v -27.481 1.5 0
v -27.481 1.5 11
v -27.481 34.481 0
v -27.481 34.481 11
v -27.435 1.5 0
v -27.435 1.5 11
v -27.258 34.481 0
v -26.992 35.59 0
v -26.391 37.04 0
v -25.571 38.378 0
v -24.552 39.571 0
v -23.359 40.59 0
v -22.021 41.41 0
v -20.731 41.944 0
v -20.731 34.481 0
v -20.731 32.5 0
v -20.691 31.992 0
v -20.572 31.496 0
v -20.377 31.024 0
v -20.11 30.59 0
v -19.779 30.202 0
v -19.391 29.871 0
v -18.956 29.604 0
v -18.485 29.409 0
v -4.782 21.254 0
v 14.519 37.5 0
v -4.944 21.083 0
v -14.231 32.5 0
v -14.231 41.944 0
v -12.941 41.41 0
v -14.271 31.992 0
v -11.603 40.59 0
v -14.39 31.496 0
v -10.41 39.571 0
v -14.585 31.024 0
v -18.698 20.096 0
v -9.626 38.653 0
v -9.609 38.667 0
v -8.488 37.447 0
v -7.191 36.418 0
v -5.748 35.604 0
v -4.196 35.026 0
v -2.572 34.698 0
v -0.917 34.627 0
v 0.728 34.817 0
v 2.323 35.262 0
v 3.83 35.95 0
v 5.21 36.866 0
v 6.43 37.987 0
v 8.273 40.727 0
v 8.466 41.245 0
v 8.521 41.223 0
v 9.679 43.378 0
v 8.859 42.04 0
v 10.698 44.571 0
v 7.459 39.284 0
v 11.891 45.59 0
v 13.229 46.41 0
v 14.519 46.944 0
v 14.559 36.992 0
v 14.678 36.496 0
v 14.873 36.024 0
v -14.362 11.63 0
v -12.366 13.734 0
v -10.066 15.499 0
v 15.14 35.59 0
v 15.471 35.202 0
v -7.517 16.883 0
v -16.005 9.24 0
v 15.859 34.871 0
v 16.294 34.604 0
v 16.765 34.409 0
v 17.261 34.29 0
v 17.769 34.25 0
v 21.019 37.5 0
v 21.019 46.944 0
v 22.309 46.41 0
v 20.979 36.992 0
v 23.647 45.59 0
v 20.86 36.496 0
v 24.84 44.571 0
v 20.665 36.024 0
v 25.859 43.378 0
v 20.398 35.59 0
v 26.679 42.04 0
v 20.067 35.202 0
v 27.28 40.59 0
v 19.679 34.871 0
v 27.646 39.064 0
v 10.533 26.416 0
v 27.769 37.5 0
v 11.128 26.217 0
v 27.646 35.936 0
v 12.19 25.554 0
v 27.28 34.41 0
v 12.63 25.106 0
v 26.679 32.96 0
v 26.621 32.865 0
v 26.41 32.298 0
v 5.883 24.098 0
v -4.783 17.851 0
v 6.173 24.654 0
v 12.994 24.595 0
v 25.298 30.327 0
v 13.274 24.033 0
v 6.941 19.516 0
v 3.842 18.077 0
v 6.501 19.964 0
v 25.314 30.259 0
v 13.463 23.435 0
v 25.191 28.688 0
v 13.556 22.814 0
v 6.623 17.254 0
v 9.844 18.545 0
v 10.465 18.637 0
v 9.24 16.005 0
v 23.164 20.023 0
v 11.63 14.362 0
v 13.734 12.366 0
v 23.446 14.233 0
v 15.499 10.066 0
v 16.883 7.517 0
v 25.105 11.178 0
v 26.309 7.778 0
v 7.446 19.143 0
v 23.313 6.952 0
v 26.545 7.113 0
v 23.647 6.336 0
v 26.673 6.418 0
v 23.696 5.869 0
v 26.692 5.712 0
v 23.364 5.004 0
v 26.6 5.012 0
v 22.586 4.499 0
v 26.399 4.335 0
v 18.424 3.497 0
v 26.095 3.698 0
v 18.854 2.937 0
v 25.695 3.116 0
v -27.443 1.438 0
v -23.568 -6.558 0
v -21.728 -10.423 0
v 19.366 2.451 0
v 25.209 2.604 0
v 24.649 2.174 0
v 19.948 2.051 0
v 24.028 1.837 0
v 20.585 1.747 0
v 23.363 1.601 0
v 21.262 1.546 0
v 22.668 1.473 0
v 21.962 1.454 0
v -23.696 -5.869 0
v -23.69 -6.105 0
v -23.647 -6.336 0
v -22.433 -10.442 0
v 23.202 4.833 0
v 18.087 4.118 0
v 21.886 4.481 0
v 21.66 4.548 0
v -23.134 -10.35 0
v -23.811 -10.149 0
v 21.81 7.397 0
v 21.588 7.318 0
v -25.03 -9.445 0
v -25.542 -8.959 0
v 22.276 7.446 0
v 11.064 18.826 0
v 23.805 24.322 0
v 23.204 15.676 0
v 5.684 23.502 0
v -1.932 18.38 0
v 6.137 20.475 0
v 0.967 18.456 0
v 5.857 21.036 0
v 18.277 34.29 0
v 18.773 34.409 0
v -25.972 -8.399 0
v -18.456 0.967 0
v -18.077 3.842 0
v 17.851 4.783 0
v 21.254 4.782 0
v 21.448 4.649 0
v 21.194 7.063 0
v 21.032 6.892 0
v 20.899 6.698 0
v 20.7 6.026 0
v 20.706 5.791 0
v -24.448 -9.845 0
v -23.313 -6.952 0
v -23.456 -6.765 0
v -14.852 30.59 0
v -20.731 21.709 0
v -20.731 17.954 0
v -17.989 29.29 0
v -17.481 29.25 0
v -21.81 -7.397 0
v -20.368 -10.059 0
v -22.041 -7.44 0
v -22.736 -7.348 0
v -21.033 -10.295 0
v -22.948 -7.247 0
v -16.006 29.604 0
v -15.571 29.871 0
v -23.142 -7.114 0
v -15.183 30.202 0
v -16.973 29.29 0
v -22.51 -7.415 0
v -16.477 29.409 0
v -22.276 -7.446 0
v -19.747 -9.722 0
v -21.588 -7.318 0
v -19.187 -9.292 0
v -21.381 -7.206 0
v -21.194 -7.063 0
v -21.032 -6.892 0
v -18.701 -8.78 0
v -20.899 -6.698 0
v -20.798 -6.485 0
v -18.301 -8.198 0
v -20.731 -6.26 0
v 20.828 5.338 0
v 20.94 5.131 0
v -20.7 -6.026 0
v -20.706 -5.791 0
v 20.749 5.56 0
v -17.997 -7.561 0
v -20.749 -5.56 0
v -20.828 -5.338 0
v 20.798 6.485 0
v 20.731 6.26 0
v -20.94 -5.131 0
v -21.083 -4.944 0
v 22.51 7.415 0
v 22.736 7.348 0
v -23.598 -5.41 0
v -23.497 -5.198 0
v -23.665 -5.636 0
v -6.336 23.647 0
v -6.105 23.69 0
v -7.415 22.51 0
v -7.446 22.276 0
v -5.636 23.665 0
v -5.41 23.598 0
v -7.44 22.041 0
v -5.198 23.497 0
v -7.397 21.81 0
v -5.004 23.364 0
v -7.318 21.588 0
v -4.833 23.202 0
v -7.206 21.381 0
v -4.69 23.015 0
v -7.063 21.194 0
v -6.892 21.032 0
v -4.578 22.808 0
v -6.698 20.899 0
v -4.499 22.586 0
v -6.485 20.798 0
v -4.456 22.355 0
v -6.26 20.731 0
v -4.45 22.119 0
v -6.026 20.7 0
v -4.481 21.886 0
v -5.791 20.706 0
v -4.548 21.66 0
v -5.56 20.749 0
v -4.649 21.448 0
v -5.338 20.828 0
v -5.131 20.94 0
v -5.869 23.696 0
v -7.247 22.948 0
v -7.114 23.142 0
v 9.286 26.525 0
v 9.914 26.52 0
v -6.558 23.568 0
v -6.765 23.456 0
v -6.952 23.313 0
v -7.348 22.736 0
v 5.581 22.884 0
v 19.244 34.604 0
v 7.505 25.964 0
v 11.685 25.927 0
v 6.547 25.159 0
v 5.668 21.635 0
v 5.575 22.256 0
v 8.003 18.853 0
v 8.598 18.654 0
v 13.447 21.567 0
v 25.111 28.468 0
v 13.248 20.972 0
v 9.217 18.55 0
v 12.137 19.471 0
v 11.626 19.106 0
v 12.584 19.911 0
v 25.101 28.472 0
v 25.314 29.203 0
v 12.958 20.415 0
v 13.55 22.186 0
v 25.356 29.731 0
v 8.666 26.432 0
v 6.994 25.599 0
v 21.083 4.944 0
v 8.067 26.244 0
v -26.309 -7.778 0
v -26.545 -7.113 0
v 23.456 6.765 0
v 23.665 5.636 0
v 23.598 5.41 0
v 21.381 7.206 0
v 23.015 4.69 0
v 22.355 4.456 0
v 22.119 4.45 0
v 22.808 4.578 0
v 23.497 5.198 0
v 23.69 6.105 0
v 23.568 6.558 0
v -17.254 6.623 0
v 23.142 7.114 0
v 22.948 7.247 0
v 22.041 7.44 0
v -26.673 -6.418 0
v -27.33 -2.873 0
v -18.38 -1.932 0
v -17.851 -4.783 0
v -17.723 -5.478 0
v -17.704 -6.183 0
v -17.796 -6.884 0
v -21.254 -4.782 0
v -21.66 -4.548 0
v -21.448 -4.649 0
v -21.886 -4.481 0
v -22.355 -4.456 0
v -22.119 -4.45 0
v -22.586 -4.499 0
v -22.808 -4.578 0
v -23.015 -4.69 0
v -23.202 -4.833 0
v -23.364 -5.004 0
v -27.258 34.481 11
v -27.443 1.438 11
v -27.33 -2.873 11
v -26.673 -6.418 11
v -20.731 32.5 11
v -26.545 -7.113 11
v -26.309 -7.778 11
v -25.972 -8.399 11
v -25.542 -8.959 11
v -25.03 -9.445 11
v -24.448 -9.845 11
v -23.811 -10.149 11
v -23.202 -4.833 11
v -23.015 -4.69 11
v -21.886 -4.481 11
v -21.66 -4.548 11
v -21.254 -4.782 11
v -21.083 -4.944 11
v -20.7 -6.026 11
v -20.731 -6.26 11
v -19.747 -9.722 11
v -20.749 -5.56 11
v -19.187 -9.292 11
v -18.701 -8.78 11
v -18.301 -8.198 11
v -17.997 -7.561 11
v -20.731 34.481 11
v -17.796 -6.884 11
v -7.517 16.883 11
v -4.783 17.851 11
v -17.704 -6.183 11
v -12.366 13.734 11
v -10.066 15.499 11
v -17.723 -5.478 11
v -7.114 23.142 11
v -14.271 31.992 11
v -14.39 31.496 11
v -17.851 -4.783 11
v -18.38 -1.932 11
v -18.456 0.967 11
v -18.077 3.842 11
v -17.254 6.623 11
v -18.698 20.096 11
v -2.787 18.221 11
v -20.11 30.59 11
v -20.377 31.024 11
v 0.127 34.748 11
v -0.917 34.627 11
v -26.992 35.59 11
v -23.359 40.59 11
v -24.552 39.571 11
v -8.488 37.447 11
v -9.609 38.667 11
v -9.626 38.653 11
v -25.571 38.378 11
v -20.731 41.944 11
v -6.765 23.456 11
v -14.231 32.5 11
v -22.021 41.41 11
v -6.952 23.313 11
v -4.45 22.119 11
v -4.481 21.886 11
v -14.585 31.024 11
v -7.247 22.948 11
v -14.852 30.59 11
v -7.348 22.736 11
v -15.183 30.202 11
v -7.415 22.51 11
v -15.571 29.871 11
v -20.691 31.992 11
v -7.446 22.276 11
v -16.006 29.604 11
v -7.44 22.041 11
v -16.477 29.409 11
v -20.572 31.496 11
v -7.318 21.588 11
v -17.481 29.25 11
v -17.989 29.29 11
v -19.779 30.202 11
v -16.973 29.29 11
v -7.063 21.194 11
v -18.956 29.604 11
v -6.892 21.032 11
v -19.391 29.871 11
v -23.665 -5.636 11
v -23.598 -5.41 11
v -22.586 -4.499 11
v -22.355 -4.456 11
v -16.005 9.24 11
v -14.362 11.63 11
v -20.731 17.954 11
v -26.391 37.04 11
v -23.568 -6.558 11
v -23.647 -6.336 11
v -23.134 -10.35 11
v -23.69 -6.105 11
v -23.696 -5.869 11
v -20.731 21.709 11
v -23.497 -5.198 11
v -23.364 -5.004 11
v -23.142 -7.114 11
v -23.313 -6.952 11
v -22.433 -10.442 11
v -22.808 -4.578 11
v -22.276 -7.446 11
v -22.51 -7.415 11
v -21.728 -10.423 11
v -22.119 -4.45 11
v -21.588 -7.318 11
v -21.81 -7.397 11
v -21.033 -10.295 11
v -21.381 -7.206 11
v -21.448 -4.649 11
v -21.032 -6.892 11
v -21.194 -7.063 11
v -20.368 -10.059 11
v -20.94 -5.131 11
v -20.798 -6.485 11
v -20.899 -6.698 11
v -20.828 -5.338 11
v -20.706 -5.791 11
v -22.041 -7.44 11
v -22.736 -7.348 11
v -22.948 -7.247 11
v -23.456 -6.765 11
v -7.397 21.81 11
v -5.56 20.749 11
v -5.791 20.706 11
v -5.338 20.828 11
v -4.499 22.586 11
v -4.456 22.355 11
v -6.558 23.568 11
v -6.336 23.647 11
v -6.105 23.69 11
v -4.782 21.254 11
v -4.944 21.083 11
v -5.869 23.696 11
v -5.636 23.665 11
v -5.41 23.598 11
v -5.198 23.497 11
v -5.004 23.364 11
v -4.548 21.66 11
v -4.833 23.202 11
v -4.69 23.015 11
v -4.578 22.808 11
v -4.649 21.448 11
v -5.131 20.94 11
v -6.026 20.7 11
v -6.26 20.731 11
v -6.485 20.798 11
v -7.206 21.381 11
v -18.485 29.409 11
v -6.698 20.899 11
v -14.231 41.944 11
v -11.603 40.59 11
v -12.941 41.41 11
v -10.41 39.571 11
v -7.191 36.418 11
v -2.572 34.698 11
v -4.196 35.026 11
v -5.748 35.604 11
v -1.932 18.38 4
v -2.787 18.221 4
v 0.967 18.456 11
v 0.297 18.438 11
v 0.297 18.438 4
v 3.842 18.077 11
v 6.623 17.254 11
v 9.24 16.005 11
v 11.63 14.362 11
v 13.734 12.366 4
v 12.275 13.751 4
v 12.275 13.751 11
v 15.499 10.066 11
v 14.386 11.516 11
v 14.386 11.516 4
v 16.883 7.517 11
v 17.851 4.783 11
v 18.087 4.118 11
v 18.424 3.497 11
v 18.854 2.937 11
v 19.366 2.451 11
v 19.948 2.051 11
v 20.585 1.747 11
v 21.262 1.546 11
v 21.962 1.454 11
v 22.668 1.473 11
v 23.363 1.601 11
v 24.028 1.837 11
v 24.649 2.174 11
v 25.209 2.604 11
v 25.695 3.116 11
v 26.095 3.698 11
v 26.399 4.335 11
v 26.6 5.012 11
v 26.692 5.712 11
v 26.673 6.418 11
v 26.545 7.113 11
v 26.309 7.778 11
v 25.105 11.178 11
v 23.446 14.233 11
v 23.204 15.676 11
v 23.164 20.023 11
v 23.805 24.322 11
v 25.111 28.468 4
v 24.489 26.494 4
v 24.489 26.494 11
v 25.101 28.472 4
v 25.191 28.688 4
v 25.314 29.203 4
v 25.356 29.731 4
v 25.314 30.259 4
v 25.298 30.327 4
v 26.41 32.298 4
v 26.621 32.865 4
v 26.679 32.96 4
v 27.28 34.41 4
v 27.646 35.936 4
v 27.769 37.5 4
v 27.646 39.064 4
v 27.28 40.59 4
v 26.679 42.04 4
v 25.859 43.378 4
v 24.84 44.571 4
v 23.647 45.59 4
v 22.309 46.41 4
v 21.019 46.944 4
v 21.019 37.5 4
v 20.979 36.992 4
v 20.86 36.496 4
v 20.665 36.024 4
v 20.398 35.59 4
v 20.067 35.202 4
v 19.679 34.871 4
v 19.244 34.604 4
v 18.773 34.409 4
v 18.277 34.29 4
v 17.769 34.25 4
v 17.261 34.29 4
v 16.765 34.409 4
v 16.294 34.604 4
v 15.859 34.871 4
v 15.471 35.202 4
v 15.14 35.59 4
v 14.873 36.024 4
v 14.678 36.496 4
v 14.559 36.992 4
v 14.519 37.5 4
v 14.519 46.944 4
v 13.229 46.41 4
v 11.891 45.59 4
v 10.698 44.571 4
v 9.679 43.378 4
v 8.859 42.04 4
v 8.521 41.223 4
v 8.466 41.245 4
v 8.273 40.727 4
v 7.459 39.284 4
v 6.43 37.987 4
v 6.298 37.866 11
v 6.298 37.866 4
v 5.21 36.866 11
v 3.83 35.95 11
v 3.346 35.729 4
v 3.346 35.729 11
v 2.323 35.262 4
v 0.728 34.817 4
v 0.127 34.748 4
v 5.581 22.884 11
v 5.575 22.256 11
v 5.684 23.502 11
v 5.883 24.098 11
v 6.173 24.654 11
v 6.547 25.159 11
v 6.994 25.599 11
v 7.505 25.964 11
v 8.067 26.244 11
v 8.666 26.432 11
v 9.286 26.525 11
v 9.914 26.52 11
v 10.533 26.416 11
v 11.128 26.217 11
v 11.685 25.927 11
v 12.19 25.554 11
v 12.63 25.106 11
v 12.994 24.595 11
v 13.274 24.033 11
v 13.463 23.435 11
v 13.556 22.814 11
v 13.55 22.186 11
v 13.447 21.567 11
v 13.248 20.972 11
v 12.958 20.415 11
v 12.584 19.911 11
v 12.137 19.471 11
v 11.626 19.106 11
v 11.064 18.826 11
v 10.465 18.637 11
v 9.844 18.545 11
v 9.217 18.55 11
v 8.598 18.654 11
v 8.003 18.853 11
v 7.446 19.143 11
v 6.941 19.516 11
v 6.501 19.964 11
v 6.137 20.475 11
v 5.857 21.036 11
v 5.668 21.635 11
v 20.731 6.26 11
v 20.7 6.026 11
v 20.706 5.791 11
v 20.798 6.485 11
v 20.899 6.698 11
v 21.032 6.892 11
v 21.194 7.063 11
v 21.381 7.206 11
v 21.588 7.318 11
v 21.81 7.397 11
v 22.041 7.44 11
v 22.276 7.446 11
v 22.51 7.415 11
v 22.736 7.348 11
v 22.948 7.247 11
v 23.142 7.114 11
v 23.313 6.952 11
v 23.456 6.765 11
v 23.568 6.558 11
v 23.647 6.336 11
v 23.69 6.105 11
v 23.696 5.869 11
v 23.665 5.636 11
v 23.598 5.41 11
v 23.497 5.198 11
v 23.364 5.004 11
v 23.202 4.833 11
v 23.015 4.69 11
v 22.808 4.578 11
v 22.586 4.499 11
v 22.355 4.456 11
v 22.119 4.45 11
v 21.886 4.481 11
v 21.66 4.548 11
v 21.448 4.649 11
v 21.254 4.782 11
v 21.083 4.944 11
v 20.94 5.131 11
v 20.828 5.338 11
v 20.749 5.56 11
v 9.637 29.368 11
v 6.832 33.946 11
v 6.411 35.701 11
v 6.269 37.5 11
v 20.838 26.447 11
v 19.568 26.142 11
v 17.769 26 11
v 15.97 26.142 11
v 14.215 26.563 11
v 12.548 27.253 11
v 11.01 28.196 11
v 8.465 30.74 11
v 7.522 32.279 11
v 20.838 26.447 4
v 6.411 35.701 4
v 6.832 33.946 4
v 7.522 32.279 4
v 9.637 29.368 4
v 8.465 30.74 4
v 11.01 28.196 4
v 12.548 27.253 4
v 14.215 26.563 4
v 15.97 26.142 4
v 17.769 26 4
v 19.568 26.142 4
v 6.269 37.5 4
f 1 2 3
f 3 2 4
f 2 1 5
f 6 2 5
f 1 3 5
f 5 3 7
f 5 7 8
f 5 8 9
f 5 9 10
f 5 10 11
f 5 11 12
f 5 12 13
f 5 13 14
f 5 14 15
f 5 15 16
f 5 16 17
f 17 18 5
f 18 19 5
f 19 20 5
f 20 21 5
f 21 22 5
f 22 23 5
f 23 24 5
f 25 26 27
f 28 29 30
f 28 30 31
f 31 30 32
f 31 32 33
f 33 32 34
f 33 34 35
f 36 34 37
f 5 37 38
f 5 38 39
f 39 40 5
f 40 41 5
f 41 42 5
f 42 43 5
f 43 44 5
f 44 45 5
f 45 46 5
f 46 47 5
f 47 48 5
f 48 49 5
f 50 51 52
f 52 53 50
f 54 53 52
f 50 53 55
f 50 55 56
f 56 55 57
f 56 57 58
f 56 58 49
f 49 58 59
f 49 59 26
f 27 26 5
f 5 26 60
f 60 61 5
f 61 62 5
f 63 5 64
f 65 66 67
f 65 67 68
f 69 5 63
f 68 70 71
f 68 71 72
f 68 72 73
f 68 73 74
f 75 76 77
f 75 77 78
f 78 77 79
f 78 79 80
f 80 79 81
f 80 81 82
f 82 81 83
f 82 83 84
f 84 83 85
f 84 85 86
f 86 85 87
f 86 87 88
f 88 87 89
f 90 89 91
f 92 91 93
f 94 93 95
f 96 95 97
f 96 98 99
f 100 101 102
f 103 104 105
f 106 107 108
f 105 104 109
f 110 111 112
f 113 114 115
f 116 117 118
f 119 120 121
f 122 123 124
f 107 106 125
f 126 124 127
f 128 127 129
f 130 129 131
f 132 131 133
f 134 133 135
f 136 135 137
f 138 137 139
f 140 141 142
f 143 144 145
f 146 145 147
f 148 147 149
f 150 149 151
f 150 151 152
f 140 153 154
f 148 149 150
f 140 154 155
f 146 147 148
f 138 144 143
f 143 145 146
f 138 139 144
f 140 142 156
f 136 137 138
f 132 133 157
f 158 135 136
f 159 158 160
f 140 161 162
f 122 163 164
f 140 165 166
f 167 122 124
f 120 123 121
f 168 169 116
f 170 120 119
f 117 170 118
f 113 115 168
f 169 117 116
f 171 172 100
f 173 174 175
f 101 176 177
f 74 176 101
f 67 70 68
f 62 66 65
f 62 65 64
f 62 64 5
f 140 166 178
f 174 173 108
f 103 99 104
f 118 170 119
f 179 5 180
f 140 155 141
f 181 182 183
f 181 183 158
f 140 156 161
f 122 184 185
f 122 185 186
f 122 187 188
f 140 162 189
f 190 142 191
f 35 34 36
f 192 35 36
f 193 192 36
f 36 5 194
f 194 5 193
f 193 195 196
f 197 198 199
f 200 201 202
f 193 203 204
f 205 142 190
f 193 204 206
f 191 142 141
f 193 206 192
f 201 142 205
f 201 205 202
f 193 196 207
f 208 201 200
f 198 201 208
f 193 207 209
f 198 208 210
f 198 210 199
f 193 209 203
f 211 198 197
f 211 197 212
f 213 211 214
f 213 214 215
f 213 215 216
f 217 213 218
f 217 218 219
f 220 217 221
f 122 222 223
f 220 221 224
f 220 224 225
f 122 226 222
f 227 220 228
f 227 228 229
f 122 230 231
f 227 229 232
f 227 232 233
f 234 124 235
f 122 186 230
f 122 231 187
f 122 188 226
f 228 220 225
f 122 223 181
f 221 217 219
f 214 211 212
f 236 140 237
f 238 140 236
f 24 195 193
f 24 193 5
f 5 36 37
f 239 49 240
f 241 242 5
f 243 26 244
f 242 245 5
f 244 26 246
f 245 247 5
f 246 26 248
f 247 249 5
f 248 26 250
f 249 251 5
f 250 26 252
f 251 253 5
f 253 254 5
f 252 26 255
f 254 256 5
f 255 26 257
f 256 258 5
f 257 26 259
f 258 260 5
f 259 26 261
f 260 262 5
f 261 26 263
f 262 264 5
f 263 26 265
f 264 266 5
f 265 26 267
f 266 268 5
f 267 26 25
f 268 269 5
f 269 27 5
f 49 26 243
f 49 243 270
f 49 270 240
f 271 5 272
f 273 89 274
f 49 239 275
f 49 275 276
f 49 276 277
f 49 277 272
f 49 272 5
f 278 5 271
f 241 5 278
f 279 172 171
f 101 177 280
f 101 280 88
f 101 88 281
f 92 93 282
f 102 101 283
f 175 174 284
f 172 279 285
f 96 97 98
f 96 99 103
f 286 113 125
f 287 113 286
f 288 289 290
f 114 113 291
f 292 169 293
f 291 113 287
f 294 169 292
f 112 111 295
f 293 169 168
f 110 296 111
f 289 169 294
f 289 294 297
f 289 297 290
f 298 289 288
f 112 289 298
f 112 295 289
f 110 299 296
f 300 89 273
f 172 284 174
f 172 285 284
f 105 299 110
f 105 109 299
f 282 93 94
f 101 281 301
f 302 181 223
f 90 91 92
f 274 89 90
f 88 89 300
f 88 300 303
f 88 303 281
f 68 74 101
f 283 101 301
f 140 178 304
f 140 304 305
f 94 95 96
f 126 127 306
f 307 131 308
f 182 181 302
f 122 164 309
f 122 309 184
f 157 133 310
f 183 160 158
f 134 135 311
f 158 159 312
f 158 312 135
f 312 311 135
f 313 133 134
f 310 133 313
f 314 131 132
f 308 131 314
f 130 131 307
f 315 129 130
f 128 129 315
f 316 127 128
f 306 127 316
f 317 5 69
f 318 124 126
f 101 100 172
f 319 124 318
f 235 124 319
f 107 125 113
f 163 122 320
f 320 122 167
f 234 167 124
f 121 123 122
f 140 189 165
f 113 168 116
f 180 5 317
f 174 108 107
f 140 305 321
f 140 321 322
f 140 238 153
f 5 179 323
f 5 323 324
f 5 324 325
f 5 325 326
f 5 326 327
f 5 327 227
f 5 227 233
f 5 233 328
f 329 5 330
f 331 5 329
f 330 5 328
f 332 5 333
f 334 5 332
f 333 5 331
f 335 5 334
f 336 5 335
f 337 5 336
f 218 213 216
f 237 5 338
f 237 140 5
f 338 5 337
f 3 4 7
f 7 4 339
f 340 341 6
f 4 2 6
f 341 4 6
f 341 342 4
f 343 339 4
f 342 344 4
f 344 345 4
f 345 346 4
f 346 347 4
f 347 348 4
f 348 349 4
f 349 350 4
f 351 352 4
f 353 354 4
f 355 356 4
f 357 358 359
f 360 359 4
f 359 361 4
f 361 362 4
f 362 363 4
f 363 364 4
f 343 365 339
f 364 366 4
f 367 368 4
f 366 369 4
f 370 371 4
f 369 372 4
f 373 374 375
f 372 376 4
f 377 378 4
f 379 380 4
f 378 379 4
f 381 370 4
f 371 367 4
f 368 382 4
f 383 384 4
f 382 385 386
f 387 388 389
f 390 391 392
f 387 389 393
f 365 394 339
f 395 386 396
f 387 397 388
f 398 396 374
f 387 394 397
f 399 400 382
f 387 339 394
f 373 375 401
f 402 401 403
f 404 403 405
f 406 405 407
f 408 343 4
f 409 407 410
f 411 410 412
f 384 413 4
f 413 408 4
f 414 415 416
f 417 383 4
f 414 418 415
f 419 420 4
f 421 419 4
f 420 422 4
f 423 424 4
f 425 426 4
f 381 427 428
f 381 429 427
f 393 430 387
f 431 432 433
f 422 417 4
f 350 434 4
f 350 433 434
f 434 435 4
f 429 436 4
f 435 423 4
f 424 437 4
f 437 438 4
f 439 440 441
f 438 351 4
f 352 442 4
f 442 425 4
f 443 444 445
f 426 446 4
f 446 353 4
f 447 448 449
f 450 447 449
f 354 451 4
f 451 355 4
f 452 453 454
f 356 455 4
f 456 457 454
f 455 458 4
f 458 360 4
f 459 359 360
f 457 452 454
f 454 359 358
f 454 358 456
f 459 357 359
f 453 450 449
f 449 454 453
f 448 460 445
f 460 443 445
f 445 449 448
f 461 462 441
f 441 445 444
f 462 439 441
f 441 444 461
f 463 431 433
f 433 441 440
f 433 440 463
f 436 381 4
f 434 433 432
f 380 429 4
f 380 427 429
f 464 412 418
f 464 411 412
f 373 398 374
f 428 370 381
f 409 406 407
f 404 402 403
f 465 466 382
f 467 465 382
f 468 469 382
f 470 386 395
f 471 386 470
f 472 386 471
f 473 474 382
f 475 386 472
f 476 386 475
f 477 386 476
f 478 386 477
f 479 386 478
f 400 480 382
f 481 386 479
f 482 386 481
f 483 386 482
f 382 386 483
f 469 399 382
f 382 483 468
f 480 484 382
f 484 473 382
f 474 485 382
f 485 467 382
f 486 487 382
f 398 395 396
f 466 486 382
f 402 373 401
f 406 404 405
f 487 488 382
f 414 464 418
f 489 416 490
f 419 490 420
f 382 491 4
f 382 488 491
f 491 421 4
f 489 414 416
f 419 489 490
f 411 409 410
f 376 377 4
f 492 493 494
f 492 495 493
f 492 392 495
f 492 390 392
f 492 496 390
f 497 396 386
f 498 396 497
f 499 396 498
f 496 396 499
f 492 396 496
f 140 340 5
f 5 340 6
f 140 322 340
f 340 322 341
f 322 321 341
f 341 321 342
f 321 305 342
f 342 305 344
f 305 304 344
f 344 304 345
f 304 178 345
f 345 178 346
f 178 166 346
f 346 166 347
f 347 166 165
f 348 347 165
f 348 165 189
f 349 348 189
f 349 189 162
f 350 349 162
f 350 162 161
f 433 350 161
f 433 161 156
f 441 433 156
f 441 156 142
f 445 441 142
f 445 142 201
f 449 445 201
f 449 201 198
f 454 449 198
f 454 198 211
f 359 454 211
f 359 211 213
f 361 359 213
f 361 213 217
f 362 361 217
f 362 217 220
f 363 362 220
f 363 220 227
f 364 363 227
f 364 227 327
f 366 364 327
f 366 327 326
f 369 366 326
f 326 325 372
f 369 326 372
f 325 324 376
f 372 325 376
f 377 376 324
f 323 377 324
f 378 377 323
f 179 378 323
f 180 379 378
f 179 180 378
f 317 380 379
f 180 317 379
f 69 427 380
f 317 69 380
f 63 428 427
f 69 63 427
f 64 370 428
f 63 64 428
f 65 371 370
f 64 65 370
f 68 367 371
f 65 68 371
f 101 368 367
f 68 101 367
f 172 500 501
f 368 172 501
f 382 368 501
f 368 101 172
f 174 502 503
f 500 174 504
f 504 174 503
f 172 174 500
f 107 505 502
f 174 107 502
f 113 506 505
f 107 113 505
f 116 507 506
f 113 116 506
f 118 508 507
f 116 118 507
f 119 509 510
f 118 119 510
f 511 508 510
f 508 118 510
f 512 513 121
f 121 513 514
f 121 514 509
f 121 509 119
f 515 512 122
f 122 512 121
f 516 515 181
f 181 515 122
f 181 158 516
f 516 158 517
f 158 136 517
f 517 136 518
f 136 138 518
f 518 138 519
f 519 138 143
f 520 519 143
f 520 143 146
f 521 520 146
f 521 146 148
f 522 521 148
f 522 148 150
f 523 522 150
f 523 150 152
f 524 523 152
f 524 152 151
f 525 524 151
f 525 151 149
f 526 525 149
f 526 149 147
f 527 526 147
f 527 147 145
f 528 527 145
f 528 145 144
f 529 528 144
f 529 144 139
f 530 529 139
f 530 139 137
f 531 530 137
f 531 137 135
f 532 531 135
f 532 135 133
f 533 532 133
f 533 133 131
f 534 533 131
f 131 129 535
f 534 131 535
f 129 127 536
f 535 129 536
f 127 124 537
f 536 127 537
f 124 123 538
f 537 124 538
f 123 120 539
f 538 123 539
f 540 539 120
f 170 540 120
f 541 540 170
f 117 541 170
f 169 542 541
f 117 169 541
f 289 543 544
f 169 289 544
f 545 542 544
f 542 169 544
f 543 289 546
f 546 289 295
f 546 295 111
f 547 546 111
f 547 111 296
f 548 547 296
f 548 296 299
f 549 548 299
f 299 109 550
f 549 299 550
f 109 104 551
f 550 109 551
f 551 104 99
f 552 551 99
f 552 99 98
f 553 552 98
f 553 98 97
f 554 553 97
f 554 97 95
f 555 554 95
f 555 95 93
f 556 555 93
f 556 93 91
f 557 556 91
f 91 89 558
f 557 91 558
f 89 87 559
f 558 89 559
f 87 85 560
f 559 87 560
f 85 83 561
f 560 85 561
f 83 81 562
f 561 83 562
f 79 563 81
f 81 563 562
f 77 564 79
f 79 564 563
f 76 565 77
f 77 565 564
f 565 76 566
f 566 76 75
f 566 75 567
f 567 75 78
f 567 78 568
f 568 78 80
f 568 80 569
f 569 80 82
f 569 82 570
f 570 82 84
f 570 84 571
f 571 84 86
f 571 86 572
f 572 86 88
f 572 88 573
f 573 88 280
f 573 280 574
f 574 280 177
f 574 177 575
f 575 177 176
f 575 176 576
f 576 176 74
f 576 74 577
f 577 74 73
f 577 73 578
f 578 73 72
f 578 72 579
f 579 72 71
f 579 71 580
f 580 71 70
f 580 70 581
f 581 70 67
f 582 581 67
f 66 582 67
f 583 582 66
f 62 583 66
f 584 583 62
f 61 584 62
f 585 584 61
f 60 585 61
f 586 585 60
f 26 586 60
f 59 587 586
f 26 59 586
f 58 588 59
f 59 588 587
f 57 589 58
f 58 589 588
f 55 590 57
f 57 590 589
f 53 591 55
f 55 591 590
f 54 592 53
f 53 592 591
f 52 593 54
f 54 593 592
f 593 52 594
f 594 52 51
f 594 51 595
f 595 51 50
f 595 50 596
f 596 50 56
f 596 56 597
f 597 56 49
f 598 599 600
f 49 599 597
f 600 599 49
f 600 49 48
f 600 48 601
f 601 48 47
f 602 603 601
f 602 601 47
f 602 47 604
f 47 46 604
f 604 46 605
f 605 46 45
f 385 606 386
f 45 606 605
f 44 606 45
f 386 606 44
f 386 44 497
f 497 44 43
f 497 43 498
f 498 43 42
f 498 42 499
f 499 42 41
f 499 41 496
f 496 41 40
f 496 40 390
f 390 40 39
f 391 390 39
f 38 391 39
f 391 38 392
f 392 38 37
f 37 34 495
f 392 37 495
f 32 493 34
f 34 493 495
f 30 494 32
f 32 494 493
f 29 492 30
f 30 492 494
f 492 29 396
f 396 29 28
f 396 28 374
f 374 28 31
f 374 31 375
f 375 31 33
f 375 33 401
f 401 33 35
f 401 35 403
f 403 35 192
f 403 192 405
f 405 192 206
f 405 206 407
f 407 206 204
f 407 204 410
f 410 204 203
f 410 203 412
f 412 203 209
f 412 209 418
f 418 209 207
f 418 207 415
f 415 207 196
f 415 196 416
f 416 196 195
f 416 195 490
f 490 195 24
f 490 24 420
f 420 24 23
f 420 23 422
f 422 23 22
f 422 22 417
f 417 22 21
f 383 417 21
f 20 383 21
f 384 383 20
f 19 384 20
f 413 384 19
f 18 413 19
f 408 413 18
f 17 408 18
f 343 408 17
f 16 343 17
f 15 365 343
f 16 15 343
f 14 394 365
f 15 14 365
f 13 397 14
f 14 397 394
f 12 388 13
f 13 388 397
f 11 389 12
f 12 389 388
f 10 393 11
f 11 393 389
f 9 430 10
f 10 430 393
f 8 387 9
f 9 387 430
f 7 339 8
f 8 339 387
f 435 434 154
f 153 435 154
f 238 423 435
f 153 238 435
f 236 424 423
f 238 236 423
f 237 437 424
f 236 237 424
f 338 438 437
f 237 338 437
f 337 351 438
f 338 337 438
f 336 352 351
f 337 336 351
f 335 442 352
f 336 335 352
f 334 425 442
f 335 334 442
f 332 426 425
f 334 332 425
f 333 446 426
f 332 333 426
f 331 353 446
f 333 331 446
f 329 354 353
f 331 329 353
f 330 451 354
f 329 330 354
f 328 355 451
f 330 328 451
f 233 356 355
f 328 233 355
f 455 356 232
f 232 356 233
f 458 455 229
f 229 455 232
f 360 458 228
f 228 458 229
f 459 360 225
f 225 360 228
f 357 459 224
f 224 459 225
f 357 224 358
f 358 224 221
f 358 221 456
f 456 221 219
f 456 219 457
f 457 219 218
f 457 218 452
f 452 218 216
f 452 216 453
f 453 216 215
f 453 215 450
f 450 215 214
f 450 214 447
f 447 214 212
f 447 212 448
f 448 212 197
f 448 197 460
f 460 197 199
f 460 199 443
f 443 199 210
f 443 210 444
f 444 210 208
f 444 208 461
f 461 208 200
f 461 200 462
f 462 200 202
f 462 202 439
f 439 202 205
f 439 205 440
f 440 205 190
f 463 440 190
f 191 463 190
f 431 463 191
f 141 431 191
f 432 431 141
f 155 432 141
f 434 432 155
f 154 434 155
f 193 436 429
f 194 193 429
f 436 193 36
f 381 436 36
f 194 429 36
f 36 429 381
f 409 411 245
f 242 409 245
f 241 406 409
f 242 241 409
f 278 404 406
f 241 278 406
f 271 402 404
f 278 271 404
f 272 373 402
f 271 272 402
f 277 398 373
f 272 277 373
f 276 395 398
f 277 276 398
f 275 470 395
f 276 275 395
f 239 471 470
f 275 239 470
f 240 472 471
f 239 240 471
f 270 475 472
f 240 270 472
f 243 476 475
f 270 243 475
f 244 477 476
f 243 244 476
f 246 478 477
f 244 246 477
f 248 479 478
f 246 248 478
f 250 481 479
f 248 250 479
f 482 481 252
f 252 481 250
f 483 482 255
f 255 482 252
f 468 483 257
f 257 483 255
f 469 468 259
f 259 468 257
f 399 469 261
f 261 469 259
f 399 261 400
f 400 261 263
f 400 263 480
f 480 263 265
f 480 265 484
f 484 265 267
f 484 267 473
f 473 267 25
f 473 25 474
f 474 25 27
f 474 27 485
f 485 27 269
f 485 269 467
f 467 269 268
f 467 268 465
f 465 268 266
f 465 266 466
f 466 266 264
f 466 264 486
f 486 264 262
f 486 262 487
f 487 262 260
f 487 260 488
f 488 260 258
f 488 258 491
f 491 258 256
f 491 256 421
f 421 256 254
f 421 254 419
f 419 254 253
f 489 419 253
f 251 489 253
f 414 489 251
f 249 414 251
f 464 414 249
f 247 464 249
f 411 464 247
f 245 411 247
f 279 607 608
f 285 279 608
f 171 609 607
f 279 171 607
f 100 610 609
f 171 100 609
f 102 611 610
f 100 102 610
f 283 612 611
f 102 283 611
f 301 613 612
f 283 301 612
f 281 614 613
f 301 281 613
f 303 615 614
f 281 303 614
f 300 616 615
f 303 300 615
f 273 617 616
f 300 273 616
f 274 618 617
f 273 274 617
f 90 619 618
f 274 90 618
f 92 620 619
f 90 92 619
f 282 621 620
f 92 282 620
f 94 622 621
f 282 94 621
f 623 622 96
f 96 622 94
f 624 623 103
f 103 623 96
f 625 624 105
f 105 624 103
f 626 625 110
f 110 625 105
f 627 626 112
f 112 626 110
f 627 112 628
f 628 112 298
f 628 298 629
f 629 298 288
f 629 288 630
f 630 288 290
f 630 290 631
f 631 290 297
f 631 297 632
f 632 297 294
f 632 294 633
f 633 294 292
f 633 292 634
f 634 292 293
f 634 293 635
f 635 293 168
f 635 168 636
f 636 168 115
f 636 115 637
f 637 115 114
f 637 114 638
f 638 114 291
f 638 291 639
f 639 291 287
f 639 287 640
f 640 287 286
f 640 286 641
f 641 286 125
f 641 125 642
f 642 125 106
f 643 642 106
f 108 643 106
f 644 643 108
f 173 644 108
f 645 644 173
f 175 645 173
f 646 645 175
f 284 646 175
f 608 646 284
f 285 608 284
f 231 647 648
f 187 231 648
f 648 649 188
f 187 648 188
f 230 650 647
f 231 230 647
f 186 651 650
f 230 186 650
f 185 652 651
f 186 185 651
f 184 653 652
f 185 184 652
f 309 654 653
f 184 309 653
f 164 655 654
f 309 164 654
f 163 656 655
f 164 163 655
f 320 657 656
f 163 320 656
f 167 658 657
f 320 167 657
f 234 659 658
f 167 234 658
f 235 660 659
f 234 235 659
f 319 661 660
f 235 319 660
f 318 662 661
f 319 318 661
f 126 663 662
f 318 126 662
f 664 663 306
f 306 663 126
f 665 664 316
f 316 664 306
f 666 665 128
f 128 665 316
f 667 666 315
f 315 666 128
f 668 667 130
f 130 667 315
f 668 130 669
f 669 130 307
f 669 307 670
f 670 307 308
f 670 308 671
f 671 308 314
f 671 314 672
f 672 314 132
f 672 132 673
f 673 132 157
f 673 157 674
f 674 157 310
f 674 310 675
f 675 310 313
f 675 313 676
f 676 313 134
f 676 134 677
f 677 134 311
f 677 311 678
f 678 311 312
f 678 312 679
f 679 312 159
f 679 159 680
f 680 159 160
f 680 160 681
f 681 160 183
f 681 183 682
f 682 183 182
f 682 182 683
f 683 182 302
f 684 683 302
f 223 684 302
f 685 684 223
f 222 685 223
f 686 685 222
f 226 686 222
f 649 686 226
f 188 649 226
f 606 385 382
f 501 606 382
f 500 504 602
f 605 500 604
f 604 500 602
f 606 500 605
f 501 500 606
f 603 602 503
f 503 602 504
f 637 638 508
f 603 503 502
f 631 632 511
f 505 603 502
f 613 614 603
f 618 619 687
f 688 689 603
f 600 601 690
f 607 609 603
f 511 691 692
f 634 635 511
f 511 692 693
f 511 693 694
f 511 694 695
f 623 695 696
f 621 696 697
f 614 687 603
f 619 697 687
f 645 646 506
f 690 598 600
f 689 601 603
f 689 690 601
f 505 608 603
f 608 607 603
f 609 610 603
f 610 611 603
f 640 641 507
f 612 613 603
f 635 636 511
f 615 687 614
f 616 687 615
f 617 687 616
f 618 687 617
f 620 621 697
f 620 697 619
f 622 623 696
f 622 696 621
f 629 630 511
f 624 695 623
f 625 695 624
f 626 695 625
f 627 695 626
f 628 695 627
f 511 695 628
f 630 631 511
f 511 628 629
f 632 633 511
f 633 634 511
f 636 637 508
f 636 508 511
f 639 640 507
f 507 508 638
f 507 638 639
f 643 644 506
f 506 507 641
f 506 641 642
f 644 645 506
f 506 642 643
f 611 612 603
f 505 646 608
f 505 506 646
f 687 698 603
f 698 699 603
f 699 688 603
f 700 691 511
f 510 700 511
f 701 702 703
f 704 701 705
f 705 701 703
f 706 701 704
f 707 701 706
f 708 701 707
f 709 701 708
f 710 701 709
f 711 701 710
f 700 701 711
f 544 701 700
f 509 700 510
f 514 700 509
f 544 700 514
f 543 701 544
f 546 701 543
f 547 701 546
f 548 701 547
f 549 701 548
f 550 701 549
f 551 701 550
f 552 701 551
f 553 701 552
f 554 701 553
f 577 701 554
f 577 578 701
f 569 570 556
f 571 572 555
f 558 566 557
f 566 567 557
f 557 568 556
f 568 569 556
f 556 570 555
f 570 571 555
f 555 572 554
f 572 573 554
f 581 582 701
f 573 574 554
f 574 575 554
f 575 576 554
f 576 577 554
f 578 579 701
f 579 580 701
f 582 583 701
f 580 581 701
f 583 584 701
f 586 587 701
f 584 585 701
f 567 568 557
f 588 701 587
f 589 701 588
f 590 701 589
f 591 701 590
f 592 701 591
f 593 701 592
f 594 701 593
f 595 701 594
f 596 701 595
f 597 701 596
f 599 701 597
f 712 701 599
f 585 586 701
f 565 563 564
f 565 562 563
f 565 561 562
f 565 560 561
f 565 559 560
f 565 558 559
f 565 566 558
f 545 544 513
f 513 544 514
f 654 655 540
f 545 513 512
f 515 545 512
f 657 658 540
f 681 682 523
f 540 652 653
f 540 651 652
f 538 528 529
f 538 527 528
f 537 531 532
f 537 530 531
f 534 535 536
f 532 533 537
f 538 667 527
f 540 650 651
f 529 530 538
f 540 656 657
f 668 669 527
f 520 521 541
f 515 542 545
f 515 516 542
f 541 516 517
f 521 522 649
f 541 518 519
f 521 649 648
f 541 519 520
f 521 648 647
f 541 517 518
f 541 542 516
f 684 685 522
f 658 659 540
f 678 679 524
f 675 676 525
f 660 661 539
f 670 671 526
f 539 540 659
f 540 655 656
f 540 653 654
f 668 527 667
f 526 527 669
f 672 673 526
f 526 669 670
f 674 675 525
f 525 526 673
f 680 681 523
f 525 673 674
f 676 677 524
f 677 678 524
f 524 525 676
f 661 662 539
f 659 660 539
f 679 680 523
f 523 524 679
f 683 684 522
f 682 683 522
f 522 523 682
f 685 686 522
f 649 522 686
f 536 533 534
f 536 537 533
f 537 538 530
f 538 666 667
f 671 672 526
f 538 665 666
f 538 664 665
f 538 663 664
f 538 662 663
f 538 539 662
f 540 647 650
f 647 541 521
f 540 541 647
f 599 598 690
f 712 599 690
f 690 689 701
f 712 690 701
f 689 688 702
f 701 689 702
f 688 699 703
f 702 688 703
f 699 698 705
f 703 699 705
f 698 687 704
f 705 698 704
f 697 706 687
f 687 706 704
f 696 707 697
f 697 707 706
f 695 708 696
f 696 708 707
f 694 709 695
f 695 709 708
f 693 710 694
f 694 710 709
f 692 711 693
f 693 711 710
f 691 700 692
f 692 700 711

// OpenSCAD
// file: arc.scad
/* Yet Another Arc Library
 * Calculates an arc by cutting apart cylinders. Only good in the z plane.
 * What's kind of nice is that you can jsut specify what the coordinates of
 * your arc should start and end at.
 * Only good up to 180 degrees.
 */

function scalar(vec) = sqrt(pow(vec.x, 2) + pow(vec.y, 2) + pow(vec.z, 2));

module arc(startCoordinates, endCoordinates, degrees, height, width) {
	deltaCoordinates = endCoordinates - startCoordinates;
	currArcLength = scalar(deltaCoordinates);
	radius = currArcLength / (2 * sin(degrees/2));
	
	render() {
		translate(endCoordinates)
			rotate(atan2(-deltaCoordinates.y, -deltaCoordinates.x))
				lineUpArc(currArcLength, degrees, radius, height, width);
		translate(endCoordinates)
			cylinder(h = height, d = width);
		translate(startCoordinates)
			cylinder(h = height, d = width);
	}
}

module lineUpArc(currArcLength, degrees, radius, height, width) {
	outerArcDiameter = radius * 2 + width;
	innerArcDiameter = radius * 2 - width;
	translate([currArcLength/2,-cos(degrees / 2)*radius,0])
		rotate(degrees / 2)
			roughArc(outerArcDiameter, innerArcDiameter, degrees, height);
}

module roughArc(outerArcDiameter, innerArcDiameter, degrees, height) {
	difference() {
		rotate(180 - degrees) difference() {
			hollowCylinder(outerArcDiameter, innerArcDiameter, height);
			translate([-outerArcDiameter / 2, -outerArcDiameter / 2, 0])
			cube([outerArcDiameter / 2, outerArcDiameter, height]);
		}
		translate([-outerArcDiameter / 2, -outerArcDiameter / 2, 0])
			cube([outerArcDiameter / 2, outerArcDiameter, height]);
	}
}

module hollowCylinder(outerArcDiameter, innerArcDiameter, height) {
	difference() {
		cylinder(h = height, d = outerArcDiameter);
		cylinder(h = height, d = innerArcDiameter);
	}
}


// BEGIN TESTS
// Several Different Arcs

translate([0, 0, 0])
	arc([0,0,0], [0,5,0], 30, 7, 1);

translate([20, 0, 0])
	arc([0,0,0],  [0,5,0], 45, 7, 1);

translate([40, 0, 0])
	arc([-5,0,0],  [0,5,0], 90, 7, 1);

translate([60, 0, 0])
	arc([5,0,0],  [0,5,0], 135, 7, 1);

translate([80, 0, 0])
	arc([0,0,0],  [0,5,0], 180, 7, 1);
// file: y-clip-assembly.scad
use<arc.scad>;

module clipMouth(height, mouthWidth, clipDiameter) {
	cylinder(h = height, d = mouthWidth);
	translate([-mouthWidth / 2, 0, 0])
		cube([mouthWidth, clipDiameter/2, height]);
}
module clipFill(height, clipHeadDiameter, clipSeparation, fillWidth) {
	//Clip heads
	cylinder(h = height, d = clipHeadDiameter);
	translate(clipSeparation)
		cylinder(h = height, d = clipHeadDiameter);

	// Filler
	arc([0,0,0], clipSeparation, 120, height, clipHeadDiameter);

}

module clipAssembly(
	height, clipSeparation, clipHeadDiameter, mouthWidth) {
	difference() {
		clipFill(height, clipHeadDiameter, clipSeparation, mouthWidth);
		clipMouth(height, mouthWidth, clipHeadDiameter);
		translate(clipSeparation)
			clipMouth(height, mouthWidth, clipHeadDiameter);
	}
}

clipAssembly(5, [30, 5, 0], 20, 5);
// file: y-motor-assembly.scad
use<arc.scad>;

module drawMotorAssembly(height, spacing, screwHoleDiameter, thickness) {
	motorHoleDiameter = sqrt(spacing * spacing * 2);
	motorHoleRadius = motorHoleDiameter / 2;
	difference() {
		arc([motorHoleRadius, 0, 0],
			[-motorHoleRadius, 0, 0],
			180, height, thickness * 2 + screwHoleDiameter);
		drawMotorScrews(height, motorHoleDiameter, screwHoleDiameter);
	}
}

module drawMotorScrews(height, motorHoleDiameter, screwHoleDiameter) {
	translate([motorHoleDiameter / 2,0,0])
		cylinder(h = height, d = screwHoleDiameter);
	translate([-motorHoleDiameter / 2,0,0])
		cylinder(h = height, d = screwHoleDiameter);
	translate([0, motorHoleDiameter / 2, 0])
		cylinder(h = height, d = screwHoleDiameter);
}


drawMotorAssembly(5, 30, 3, 3);
// main file
$fn=40;

use<y-motor-assembly.scad>;
use<y-clip-assembly.scad>;
use<arc.scad>;

// Settings for this assembly.
// Everything is in millimeters.
clipWidth = 6.5;
clipSeparation = [32 + clipWidth / 2, 5, 0];

clipHeadDiameter = 20;

screwHoleDiameter = 3;
wirePortDiameter = 8;
beltSpace = 3;
thinWidth = 4;
beltWidth = 7;
minimumThickness = 3;

motorHoleSpacing = 34 - screwHoleDiameter / 2;

motorHoleDiameter = sqrt(motorHoleSpacing *motorHoleSpacing * 2);

assemblyBottom = - motorHoleDiameter / 2
			- minimumThickness
			- screwHoleDiameter / 2;

assemblyTop = motorHoleDiameter/2;

panelWidth = thinWidth + beltWidth;

motorHoleDiameter = sqrt(motorHoleSpacing * motorHoleSpacing * 2);
outerMotorHoleDiameter = motorHoleDiameter
	+ minimumThickness
	+ screwHoleDiameter;

motorTwist = 15;

barThickness = clipHeadDiameter / 2 - clipWidth /2;

module drawFilledPanel() {

	
	difference() {
		translate([assemblyBottom + clipHeadDiameter / 2 , motorHoleSpacing, 0]) {
	    		clipAssembly(
				panelWidth,
				clipSeparation,
				clipHeadDiameter,
				clipWidth);
		}
		cylinder(h = panelWidth, d = outerMotorHoleDiameter);
	}
	rotate([0,0,motorTwist])
	drawMotorAssembly(
		panelWidth,
		motorHoleSpacing,
		screwHoleDiameter,
		minimumThickness);

	difference() {
		translate([assemblyBottom,
				screwHoleDiameter / 2,
				0])
			cube([barThickness,
				motorHoleDiameter / 2 + clipHeadDiameter / 2,
				panelWidth]);
		translate([-motorHoleDiameter / 2, 0, 0])
			cylinder(h = panelWidth, d = screwHoleDiameter);
	}
	difference() {
		arc(	[	assemblyTop - 1,
				motorHoleDiameter / 2 + clipHeadDiameter/2 - clipWidth/2,
				0],
			[cos(motorTwist) * motorHoleDiameter/2 , sin(motorTwist) * motorHoleDiameter/2,0],
			45, panelWidth, barThickness );
		rotate([0,0,motorTwist])
		translate([motorHoleDiameter / 2, 0, 0])
			cylinder(h = panelWidth, d = screwHoleDiameter);
	}
}

difference() {
	drawFilledPanel();
	rotate([0,0,-23])
	translate([ 0, motorHoleDiameter/2 - screwHoleDiameter/2 + minimumThickness, 0])
		cylinder(h = panelWidth, d = wirePortDiameter);
	
	translate([3,0,thinWidth])
		rotate([0,0,-34])
			cube([beltSpace, 100, beltWidth]);

	translate([-3 - beltSpace,0,thinWidth])
		rotate([0,0,-10])
			cube([beltSpace, 100, beltWidth]);

	translate([assemblyBottom + clipHeadDiameter / 2, motorHoleSpacing, thinWidth] + clipSeparation) {
		cylinder(h = beltWidth, d = clipHeadDiameter + 3);
	}
	
}
